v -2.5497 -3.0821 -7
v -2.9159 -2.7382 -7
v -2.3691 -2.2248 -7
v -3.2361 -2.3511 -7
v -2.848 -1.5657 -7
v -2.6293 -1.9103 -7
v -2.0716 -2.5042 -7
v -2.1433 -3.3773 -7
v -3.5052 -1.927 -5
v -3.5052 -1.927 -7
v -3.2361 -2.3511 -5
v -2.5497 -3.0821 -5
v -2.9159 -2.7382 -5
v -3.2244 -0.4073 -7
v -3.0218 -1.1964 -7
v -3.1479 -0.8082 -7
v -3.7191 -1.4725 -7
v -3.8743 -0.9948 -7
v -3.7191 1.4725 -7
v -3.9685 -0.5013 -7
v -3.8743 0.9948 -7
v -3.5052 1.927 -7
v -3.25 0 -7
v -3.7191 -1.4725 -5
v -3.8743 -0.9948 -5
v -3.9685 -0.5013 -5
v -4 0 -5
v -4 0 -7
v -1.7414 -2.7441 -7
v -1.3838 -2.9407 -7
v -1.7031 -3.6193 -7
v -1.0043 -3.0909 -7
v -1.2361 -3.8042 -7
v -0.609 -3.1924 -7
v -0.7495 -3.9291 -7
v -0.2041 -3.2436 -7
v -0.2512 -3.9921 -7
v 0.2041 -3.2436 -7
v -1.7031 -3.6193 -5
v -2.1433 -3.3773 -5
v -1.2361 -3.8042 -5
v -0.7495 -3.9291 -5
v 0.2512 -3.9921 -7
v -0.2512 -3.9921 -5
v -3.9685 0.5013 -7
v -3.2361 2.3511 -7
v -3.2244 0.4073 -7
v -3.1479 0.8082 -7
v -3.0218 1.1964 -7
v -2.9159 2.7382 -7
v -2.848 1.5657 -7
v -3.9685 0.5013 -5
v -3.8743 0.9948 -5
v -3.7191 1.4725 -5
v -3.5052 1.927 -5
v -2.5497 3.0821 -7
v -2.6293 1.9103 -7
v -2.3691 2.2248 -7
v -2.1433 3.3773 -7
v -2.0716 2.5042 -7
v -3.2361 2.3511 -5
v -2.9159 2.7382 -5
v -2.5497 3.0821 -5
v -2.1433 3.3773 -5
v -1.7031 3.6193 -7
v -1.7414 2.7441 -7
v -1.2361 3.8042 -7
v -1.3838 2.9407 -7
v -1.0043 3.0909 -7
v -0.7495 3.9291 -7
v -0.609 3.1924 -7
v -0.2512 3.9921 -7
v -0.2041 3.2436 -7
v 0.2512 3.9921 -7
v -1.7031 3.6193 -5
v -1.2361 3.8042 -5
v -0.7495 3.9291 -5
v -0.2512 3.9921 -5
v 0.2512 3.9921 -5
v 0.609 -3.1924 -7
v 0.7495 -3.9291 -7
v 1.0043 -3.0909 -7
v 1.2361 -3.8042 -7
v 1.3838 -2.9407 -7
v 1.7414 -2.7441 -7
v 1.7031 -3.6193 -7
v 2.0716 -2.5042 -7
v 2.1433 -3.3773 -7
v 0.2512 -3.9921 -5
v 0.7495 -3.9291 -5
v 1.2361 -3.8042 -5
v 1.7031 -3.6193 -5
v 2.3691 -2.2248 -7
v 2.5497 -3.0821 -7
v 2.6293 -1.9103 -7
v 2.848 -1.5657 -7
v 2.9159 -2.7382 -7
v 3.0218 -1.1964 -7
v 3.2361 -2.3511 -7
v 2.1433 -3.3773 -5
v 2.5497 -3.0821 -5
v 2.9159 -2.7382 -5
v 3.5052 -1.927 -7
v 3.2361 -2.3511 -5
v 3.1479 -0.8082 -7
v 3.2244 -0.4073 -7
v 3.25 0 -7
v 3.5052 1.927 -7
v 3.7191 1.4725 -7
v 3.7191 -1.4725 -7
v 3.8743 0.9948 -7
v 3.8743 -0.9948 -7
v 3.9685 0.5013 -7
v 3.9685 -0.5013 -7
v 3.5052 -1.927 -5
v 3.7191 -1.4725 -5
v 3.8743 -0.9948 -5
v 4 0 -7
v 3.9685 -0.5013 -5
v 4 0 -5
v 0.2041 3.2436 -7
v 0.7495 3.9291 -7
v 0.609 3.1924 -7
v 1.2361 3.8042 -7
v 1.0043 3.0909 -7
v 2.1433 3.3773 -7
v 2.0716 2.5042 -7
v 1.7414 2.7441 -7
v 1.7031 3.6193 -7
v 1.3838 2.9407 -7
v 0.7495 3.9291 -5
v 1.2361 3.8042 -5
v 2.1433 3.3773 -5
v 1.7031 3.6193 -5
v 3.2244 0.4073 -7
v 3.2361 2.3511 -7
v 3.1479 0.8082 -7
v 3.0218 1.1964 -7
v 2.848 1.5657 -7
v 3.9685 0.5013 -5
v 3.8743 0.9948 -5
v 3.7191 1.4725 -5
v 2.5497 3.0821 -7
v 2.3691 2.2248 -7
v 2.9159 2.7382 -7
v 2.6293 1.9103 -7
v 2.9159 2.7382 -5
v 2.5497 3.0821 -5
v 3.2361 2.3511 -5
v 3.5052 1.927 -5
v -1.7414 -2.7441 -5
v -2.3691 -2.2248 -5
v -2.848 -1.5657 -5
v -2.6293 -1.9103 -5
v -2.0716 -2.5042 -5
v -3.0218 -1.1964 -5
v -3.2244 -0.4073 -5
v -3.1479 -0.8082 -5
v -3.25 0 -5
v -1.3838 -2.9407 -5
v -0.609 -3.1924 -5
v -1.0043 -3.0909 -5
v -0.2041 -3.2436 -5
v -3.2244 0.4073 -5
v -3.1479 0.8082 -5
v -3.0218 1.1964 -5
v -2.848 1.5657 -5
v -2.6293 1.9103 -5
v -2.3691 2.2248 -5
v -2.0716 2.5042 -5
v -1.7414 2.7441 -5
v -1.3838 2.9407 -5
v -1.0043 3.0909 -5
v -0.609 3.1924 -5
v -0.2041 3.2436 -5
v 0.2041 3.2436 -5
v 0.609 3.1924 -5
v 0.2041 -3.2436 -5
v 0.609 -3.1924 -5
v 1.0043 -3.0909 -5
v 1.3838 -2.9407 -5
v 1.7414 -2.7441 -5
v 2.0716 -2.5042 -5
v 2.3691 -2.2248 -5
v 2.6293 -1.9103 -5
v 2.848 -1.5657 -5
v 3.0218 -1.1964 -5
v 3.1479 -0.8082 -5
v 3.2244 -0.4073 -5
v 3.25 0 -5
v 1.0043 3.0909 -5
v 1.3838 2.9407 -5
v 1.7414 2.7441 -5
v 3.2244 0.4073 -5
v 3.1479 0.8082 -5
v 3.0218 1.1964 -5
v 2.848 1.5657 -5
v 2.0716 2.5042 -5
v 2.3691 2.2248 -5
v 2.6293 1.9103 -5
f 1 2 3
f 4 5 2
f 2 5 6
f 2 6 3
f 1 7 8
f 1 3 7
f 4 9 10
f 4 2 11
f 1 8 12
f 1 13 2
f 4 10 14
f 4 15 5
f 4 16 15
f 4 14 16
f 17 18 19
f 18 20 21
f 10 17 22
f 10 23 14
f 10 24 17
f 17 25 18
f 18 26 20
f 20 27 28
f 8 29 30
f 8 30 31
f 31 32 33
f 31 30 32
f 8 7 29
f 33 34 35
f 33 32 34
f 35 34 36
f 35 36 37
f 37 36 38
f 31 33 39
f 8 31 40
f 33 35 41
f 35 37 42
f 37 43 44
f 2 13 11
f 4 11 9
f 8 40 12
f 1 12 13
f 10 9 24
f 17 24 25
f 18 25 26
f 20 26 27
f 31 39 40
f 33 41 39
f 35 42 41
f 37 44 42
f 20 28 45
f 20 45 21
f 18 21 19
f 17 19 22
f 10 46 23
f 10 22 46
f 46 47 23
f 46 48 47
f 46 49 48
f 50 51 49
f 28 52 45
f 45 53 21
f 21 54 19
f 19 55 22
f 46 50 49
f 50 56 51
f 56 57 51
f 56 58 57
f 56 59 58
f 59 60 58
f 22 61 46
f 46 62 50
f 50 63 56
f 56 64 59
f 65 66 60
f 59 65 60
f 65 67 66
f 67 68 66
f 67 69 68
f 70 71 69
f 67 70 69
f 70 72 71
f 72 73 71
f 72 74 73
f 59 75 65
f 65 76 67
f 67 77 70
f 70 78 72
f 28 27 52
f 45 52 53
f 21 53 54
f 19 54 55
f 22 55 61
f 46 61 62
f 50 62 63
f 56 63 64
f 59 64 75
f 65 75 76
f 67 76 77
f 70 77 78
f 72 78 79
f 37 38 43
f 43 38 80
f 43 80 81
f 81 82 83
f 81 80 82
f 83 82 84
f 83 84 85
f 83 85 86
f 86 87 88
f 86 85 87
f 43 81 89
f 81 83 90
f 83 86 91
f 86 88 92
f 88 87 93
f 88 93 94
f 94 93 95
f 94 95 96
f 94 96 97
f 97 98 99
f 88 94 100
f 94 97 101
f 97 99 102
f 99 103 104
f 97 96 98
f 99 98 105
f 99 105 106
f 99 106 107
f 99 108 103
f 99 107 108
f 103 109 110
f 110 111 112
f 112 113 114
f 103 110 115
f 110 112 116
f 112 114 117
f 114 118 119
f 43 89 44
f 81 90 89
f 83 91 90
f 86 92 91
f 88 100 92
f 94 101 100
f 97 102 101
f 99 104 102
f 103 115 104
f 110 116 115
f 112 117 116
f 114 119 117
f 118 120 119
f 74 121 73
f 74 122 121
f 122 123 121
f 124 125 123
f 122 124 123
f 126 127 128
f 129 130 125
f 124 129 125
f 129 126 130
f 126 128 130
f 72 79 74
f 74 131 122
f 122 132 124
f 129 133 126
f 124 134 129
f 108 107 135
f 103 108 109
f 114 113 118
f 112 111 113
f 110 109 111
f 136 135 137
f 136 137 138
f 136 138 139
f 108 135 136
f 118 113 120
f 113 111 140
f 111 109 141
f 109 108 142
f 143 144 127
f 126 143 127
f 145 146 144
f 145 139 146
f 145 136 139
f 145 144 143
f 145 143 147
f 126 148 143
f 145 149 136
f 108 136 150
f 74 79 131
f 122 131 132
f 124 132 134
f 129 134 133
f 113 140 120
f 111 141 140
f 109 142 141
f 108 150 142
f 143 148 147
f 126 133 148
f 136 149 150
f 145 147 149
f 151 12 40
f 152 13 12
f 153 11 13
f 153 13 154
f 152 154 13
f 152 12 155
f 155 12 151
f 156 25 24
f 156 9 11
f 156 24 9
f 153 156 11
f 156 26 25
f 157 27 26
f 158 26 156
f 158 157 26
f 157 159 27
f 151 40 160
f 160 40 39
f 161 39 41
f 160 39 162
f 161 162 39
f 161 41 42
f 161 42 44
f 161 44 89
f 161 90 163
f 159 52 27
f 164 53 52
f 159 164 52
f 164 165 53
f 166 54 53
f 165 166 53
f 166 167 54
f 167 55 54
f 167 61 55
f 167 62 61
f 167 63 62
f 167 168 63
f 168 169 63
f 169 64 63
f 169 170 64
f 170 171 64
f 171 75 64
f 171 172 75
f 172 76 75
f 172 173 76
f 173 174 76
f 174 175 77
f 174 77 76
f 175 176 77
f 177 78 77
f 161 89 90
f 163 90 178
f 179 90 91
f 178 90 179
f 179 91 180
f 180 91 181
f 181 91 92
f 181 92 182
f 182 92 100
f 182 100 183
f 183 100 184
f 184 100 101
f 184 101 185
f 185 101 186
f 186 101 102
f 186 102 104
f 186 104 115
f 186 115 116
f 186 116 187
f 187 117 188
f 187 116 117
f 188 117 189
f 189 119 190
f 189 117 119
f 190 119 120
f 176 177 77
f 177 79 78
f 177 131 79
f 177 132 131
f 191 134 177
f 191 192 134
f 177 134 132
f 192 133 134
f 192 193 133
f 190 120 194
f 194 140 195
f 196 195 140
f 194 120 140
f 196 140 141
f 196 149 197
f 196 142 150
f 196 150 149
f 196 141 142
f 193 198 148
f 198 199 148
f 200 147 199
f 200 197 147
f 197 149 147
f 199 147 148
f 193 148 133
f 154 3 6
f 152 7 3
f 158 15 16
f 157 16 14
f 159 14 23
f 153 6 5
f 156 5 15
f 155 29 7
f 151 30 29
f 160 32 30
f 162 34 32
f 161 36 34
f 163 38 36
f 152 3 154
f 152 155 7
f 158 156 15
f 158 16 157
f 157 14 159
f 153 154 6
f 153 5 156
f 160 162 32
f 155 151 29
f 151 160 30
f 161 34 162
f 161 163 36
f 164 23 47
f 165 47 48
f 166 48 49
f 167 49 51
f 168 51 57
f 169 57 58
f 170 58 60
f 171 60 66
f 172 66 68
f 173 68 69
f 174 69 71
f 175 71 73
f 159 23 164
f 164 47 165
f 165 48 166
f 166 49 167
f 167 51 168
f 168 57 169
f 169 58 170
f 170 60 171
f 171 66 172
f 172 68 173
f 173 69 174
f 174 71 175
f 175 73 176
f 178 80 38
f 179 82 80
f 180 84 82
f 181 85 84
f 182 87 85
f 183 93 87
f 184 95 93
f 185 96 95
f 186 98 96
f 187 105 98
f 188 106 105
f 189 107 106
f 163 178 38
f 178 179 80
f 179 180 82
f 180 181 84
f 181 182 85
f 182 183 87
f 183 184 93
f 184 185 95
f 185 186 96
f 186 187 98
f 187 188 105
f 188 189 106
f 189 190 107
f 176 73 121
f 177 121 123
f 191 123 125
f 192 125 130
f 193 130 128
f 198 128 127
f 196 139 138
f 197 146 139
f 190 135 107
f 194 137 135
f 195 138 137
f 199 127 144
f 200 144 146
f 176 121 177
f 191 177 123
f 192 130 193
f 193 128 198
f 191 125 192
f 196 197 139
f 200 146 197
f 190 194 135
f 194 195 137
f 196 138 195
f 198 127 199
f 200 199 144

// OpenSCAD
$fn = 50;

difference() {
	union() {
		translate(v = [0, 0, -7.0]) {
			cylinder(h = 10.0, r = 4.0);
		}
		#translate(v = [0, 0, -8.5]) {
			cylinder(h = 8.5, r = 2.875);
		}
	}
	union() {
		translate(v = [0, 0, 0]) {
			rotate(a = [0, 0, 0]) {
				difference() {
					union() {
						translate(v = [0, 0, -5]) {
							linear_extrude(height = 5) {
								polygon(points = [[5.914249999999999, 0.0], [2.957125, 5.1218907443321156], [-2.9571249999999982, 5.1218907443321156], [-5.914249999999999, 7.242867331857232e-16], [-2.9571250000000022, -5.121890744332115], [2.9571249999999956, -5.121890744332118]]);
							}
						}
					}
					union();
				}
			}
		}
		#cylinder(h = 3, r = 6.25);
		#translate(v = [0, 0, -100.0]) {
			cylinder(h = 200, r = 3.25);
		}
	}
}
